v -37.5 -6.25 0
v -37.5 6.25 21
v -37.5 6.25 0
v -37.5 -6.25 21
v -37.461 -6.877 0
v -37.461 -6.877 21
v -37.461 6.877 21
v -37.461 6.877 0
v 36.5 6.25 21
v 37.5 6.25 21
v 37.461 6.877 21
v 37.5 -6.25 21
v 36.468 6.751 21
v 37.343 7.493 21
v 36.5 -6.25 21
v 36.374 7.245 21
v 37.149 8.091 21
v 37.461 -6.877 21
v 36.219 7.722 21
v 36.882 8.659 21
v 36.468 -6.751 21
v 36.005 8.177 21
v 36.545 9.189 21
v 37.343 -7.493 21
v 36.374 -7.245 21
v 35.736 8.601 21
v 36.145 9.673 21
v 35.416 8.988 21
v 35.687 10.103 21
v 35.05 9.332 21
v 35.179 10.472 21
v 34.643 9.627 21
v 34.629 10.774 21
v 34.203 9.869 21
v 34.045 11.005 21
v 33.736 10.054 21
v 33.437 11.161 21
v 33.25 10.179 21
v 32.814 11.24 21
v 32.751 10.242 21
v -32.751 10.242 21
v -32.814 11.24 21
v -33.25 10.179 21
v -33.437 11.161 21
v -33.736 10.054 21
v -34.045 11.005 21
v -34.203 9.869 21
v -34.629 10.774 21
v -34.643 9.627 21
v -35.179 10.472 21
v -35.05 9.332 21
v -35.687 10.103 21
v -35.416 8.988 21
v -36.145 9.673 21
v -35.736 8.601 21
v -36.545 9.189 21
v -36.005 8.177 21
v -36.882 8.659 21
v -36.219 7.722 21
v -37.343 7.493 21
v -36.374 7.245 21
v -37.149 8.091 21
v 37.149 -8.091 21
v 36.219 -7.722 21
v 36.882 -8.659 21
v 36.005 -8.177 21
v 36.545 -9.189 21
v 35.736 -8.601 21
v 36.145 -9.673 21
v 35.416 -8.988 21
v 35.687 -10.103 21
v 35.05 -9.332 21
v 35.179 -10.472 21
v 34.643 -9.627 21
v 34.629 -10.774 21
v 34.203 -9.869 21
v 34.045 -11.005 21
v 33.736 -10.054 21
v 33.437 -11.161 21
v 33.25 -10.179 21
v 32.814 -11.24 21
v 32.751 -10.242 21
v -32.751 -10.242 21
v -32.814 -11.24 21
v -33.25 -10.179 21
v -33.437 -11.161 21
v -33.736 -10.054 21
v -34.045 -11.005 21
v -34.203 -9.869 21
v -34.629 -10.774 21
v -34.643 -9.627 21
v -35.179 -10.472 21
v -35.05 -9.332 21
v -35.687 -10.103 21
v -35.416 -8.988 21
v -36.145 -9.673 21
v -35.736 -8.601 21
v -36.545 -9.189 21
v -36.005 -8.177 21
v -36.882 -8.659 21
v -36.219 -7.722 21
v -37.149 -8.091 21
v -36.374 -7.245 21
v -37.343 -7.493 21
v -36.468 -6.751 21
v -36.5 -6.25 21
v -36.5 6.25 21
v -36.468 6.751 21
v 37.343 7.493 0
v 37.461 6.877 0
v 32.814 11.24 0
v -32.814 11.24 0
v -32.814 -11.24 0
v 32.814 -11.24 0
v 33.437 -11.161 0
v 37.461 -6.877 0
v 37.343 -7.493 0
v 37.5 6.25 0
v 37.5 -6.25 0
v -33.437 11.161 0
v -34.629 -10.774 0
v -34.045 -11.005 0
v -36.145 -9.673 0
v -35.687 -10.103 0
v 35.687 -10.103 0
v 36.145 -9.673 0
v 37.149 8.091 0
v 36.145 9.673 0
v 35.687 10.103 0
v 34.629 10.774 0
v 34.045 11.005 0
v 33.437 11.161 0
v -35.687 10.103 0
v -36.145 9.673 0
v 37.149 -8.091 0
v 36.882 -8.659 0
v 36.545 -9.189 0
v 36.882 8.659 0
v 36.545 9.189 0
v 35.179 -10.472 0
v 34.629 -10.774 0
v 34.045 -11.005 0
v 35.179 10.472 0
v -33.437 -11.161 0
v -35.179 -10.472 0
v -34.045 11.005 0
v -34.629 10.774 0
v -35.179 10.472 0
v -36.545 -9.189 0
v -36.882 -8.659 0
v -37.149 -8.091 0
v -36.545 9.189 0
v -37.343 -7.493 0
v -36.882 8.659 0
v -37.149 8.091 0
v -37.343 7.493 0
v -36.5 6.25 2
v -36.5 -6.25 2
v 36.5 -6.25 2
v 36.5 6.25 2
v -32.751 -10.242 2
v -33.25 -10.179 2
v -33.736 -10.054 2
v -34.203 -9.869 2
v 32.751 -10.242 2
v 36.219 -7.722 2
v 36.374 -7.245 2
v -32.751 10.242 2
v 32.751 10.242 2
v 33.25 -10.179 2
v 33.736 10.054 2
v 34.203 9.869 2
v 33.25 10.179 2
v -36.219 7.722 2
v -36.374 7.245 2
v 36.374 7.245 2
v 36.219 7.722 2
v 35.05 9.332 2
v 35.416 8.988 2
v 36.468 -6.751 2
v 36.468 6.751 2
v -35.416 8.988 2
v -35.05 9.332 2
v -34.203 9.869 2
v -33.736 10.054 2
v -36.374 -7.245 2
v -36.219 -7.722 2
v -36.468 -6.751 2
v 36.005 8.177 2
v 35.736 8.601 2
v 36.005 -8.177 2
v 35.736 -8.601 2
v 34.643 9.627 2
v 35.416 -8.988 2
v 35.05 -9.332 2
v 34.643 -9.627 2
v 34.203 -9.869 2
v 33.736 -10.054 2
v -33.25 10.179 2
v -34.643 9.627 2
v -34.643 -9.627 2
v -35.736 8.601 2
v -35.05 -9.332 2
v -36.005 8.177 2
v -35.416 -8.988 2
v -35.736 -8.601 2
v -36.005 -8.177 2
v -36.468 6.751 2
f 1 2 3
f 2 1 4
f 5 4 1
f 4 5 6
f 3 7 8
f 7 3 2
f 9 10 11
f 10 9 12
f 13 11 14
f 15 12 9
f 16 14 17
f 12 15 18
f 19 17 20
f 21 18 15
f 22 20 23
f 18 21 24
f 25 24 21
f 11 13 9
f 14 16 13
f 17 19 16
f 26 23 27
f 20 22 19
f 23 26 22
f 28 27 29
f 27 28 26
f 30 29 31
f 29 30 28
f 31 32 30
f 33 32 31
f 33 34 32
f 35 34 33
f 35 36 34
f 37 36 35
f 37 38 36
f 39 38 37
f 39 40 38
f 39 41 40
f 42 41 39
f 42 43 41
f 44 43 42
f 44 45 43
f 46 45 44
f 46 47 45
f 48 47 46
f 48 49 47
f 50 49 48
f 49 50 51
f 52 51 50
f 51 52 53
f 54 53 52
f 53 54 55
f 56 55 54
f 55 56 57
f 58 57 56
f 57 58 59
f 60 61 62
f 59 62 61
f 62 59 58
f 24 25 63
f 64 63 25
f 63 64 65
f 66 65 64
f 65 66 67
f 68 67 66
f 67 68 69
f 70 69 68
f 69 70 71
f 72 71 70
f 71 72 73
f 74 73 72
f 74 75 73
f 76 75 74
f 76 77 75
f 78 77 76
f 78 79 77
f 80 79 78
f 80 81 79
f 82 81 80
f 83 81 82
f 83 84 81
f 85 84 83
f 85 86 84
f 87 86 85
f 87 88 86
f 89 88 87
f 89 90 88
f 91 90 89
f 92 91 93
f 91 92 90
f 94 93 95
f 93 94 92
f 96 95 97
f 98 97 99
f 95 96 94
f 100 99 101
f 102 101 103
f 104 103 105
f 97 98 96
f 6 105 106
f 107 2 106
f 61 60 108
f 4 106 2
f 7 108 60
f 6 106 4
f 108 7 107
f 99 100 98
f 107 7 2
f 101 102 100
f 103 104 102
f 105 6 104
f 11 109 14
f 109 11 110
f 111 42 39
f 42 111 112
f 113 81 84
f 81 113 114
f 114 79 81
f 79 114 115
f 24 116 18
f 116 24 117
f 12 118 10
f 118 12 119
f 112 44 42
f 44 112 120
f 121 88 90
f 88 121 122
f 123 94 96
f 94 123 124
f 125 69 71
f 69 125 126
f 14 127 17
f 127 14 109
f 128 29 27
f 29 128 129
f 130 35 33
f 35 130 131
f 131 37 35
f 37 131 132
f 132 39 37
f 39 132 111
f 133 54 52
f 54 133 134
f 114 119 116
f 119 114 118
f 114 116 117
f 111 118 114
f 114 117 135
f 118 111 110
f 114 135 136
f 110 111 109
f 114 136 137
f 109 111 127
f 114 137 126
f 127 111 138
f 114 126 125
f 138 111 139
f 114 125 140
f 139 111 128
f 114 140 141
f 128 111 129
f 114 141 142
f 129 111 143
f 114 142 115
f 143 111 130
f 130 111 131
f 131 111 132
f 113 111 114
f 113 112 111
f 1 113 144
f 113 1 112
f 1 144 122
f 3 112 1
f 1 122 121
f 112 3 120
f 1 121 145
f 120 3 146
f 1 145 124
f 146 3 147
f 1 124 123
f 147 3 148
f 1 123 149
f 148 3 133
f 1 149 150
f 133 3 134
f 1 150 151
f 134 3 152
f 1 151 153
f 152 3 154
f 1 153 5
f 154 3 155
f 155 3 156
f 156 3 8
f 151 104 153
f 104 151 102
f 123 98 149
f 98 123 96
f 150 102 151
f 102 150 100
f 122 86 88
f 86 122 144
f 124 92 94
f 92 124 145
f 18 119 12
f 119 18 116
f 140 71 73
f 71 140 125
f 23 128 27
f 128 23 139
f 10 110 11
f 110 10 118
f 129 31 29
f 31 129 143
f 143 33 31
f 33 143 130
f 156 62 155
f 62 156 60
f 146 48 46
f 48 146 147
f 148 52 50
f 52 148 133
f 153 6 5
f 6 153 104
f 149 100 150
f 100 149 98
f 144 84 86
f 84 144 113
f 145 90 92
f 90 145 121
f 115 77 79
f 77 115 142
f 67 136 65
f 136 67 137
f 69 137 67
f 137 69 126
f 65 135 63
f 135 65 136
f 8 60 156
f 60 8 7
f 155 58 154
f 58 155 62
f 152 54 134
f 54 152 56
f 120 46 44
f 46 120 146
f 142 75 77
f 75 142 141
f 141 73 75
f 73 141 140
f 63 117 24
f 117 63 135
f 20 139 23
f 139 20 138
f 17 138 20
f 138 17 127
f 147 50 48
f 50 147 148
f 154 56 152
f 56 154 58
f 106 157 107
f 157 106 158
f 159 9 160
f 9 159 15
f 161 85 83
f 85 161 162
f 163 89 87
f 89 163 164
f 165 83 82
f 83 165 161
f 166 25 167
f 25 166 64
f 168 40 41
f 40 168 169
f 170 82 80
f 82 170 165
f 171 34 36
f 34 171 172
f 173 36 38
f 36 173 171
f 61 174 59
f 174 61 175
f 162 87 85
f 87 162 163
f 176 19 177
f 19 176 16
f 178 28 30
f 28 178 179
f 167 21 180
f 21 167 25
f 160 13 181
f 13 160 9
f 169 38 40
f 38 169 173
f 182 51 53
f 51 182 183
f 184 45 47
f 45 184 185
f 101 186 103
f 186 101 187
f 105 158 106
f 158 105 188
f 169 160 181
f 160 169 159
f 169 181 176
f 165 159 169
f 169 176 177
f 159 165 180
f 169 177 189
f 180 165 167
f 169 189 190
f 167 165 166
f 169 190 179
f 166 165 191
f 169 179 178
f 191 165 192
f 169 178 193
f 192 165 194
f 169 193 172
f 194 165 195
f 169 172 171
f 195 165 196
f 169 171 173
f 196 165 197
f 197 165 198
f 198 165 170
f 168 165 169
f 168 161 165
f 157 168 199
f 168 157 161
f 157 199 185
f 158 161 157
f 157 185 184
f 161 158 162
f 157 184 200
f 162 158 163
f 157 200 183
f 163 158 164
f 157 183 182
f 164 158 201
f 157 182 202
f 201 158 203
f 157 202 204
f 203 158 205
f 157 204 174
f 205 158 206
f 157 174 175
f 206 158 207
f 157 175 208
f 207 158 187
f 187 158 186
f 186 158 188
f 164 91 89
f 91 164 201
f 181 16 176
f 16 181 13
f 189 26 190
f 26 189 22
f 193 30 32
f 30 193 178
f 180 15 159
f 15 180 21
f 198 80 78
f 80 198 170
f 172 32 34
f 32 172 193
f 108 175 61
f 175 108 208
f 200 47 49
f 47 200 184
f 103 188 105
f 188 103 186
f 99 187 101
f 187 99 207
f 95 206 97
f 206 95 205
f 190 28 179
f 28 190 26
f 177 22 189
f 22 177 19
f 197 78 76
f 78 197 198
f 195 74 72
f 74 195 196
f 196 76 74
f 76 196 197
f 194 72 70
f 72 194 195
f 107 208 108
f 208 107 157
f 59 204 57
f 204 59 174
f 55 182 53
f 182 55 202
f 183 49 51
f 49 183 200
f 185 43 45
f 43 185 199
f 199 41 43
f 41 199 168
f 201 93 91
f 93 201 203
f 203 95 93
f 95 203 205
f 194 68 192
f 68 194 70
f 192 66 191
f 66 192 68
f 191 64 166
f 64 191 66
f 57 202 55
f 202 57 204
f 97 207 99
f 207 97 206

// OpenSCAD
$fn = 50;


difference() {
	union() {
		hull() {
			translate(v = [-32.5000000000, 6.2500000000, 0]) {
				cylinder(h = 21, r = 5);
			}
			translate(v = [32.5000000000, 6.2500000000, 0]) {
				cylinder(h = 21, r = 5);
			}
			translate(v = [-32.5000000000, -6.2500000000, 0]) {
				cylinder(h = 21, r = 5);
			}
			translate(v = [32.5000000000, -6.2500000000, 0]) {
				cylinder(h = 21, r = 5);
			}
		}
	}
	union() {
		translate(v = [0, 0, 2]) {
			hull() {
				translate(v = [-32.5000000000, 6.2500000000, 0]) {
					cylinder(h = 19, r = 4);
				}
				translate(v = [32.5000000000, 6.2500000000, 0]) {
					cylinder(h = 19, r = 4);
				}
				translate(v = [-32.5000000000, -6.2500000000, 0]) {
					cylinder(h = 19, r = 4);
				}
				translate(v = [32.5000000000, -6.2500000000, 0]) {
					cylinder(h = 19, r = 4);
				}
			}
		}
	}
}
